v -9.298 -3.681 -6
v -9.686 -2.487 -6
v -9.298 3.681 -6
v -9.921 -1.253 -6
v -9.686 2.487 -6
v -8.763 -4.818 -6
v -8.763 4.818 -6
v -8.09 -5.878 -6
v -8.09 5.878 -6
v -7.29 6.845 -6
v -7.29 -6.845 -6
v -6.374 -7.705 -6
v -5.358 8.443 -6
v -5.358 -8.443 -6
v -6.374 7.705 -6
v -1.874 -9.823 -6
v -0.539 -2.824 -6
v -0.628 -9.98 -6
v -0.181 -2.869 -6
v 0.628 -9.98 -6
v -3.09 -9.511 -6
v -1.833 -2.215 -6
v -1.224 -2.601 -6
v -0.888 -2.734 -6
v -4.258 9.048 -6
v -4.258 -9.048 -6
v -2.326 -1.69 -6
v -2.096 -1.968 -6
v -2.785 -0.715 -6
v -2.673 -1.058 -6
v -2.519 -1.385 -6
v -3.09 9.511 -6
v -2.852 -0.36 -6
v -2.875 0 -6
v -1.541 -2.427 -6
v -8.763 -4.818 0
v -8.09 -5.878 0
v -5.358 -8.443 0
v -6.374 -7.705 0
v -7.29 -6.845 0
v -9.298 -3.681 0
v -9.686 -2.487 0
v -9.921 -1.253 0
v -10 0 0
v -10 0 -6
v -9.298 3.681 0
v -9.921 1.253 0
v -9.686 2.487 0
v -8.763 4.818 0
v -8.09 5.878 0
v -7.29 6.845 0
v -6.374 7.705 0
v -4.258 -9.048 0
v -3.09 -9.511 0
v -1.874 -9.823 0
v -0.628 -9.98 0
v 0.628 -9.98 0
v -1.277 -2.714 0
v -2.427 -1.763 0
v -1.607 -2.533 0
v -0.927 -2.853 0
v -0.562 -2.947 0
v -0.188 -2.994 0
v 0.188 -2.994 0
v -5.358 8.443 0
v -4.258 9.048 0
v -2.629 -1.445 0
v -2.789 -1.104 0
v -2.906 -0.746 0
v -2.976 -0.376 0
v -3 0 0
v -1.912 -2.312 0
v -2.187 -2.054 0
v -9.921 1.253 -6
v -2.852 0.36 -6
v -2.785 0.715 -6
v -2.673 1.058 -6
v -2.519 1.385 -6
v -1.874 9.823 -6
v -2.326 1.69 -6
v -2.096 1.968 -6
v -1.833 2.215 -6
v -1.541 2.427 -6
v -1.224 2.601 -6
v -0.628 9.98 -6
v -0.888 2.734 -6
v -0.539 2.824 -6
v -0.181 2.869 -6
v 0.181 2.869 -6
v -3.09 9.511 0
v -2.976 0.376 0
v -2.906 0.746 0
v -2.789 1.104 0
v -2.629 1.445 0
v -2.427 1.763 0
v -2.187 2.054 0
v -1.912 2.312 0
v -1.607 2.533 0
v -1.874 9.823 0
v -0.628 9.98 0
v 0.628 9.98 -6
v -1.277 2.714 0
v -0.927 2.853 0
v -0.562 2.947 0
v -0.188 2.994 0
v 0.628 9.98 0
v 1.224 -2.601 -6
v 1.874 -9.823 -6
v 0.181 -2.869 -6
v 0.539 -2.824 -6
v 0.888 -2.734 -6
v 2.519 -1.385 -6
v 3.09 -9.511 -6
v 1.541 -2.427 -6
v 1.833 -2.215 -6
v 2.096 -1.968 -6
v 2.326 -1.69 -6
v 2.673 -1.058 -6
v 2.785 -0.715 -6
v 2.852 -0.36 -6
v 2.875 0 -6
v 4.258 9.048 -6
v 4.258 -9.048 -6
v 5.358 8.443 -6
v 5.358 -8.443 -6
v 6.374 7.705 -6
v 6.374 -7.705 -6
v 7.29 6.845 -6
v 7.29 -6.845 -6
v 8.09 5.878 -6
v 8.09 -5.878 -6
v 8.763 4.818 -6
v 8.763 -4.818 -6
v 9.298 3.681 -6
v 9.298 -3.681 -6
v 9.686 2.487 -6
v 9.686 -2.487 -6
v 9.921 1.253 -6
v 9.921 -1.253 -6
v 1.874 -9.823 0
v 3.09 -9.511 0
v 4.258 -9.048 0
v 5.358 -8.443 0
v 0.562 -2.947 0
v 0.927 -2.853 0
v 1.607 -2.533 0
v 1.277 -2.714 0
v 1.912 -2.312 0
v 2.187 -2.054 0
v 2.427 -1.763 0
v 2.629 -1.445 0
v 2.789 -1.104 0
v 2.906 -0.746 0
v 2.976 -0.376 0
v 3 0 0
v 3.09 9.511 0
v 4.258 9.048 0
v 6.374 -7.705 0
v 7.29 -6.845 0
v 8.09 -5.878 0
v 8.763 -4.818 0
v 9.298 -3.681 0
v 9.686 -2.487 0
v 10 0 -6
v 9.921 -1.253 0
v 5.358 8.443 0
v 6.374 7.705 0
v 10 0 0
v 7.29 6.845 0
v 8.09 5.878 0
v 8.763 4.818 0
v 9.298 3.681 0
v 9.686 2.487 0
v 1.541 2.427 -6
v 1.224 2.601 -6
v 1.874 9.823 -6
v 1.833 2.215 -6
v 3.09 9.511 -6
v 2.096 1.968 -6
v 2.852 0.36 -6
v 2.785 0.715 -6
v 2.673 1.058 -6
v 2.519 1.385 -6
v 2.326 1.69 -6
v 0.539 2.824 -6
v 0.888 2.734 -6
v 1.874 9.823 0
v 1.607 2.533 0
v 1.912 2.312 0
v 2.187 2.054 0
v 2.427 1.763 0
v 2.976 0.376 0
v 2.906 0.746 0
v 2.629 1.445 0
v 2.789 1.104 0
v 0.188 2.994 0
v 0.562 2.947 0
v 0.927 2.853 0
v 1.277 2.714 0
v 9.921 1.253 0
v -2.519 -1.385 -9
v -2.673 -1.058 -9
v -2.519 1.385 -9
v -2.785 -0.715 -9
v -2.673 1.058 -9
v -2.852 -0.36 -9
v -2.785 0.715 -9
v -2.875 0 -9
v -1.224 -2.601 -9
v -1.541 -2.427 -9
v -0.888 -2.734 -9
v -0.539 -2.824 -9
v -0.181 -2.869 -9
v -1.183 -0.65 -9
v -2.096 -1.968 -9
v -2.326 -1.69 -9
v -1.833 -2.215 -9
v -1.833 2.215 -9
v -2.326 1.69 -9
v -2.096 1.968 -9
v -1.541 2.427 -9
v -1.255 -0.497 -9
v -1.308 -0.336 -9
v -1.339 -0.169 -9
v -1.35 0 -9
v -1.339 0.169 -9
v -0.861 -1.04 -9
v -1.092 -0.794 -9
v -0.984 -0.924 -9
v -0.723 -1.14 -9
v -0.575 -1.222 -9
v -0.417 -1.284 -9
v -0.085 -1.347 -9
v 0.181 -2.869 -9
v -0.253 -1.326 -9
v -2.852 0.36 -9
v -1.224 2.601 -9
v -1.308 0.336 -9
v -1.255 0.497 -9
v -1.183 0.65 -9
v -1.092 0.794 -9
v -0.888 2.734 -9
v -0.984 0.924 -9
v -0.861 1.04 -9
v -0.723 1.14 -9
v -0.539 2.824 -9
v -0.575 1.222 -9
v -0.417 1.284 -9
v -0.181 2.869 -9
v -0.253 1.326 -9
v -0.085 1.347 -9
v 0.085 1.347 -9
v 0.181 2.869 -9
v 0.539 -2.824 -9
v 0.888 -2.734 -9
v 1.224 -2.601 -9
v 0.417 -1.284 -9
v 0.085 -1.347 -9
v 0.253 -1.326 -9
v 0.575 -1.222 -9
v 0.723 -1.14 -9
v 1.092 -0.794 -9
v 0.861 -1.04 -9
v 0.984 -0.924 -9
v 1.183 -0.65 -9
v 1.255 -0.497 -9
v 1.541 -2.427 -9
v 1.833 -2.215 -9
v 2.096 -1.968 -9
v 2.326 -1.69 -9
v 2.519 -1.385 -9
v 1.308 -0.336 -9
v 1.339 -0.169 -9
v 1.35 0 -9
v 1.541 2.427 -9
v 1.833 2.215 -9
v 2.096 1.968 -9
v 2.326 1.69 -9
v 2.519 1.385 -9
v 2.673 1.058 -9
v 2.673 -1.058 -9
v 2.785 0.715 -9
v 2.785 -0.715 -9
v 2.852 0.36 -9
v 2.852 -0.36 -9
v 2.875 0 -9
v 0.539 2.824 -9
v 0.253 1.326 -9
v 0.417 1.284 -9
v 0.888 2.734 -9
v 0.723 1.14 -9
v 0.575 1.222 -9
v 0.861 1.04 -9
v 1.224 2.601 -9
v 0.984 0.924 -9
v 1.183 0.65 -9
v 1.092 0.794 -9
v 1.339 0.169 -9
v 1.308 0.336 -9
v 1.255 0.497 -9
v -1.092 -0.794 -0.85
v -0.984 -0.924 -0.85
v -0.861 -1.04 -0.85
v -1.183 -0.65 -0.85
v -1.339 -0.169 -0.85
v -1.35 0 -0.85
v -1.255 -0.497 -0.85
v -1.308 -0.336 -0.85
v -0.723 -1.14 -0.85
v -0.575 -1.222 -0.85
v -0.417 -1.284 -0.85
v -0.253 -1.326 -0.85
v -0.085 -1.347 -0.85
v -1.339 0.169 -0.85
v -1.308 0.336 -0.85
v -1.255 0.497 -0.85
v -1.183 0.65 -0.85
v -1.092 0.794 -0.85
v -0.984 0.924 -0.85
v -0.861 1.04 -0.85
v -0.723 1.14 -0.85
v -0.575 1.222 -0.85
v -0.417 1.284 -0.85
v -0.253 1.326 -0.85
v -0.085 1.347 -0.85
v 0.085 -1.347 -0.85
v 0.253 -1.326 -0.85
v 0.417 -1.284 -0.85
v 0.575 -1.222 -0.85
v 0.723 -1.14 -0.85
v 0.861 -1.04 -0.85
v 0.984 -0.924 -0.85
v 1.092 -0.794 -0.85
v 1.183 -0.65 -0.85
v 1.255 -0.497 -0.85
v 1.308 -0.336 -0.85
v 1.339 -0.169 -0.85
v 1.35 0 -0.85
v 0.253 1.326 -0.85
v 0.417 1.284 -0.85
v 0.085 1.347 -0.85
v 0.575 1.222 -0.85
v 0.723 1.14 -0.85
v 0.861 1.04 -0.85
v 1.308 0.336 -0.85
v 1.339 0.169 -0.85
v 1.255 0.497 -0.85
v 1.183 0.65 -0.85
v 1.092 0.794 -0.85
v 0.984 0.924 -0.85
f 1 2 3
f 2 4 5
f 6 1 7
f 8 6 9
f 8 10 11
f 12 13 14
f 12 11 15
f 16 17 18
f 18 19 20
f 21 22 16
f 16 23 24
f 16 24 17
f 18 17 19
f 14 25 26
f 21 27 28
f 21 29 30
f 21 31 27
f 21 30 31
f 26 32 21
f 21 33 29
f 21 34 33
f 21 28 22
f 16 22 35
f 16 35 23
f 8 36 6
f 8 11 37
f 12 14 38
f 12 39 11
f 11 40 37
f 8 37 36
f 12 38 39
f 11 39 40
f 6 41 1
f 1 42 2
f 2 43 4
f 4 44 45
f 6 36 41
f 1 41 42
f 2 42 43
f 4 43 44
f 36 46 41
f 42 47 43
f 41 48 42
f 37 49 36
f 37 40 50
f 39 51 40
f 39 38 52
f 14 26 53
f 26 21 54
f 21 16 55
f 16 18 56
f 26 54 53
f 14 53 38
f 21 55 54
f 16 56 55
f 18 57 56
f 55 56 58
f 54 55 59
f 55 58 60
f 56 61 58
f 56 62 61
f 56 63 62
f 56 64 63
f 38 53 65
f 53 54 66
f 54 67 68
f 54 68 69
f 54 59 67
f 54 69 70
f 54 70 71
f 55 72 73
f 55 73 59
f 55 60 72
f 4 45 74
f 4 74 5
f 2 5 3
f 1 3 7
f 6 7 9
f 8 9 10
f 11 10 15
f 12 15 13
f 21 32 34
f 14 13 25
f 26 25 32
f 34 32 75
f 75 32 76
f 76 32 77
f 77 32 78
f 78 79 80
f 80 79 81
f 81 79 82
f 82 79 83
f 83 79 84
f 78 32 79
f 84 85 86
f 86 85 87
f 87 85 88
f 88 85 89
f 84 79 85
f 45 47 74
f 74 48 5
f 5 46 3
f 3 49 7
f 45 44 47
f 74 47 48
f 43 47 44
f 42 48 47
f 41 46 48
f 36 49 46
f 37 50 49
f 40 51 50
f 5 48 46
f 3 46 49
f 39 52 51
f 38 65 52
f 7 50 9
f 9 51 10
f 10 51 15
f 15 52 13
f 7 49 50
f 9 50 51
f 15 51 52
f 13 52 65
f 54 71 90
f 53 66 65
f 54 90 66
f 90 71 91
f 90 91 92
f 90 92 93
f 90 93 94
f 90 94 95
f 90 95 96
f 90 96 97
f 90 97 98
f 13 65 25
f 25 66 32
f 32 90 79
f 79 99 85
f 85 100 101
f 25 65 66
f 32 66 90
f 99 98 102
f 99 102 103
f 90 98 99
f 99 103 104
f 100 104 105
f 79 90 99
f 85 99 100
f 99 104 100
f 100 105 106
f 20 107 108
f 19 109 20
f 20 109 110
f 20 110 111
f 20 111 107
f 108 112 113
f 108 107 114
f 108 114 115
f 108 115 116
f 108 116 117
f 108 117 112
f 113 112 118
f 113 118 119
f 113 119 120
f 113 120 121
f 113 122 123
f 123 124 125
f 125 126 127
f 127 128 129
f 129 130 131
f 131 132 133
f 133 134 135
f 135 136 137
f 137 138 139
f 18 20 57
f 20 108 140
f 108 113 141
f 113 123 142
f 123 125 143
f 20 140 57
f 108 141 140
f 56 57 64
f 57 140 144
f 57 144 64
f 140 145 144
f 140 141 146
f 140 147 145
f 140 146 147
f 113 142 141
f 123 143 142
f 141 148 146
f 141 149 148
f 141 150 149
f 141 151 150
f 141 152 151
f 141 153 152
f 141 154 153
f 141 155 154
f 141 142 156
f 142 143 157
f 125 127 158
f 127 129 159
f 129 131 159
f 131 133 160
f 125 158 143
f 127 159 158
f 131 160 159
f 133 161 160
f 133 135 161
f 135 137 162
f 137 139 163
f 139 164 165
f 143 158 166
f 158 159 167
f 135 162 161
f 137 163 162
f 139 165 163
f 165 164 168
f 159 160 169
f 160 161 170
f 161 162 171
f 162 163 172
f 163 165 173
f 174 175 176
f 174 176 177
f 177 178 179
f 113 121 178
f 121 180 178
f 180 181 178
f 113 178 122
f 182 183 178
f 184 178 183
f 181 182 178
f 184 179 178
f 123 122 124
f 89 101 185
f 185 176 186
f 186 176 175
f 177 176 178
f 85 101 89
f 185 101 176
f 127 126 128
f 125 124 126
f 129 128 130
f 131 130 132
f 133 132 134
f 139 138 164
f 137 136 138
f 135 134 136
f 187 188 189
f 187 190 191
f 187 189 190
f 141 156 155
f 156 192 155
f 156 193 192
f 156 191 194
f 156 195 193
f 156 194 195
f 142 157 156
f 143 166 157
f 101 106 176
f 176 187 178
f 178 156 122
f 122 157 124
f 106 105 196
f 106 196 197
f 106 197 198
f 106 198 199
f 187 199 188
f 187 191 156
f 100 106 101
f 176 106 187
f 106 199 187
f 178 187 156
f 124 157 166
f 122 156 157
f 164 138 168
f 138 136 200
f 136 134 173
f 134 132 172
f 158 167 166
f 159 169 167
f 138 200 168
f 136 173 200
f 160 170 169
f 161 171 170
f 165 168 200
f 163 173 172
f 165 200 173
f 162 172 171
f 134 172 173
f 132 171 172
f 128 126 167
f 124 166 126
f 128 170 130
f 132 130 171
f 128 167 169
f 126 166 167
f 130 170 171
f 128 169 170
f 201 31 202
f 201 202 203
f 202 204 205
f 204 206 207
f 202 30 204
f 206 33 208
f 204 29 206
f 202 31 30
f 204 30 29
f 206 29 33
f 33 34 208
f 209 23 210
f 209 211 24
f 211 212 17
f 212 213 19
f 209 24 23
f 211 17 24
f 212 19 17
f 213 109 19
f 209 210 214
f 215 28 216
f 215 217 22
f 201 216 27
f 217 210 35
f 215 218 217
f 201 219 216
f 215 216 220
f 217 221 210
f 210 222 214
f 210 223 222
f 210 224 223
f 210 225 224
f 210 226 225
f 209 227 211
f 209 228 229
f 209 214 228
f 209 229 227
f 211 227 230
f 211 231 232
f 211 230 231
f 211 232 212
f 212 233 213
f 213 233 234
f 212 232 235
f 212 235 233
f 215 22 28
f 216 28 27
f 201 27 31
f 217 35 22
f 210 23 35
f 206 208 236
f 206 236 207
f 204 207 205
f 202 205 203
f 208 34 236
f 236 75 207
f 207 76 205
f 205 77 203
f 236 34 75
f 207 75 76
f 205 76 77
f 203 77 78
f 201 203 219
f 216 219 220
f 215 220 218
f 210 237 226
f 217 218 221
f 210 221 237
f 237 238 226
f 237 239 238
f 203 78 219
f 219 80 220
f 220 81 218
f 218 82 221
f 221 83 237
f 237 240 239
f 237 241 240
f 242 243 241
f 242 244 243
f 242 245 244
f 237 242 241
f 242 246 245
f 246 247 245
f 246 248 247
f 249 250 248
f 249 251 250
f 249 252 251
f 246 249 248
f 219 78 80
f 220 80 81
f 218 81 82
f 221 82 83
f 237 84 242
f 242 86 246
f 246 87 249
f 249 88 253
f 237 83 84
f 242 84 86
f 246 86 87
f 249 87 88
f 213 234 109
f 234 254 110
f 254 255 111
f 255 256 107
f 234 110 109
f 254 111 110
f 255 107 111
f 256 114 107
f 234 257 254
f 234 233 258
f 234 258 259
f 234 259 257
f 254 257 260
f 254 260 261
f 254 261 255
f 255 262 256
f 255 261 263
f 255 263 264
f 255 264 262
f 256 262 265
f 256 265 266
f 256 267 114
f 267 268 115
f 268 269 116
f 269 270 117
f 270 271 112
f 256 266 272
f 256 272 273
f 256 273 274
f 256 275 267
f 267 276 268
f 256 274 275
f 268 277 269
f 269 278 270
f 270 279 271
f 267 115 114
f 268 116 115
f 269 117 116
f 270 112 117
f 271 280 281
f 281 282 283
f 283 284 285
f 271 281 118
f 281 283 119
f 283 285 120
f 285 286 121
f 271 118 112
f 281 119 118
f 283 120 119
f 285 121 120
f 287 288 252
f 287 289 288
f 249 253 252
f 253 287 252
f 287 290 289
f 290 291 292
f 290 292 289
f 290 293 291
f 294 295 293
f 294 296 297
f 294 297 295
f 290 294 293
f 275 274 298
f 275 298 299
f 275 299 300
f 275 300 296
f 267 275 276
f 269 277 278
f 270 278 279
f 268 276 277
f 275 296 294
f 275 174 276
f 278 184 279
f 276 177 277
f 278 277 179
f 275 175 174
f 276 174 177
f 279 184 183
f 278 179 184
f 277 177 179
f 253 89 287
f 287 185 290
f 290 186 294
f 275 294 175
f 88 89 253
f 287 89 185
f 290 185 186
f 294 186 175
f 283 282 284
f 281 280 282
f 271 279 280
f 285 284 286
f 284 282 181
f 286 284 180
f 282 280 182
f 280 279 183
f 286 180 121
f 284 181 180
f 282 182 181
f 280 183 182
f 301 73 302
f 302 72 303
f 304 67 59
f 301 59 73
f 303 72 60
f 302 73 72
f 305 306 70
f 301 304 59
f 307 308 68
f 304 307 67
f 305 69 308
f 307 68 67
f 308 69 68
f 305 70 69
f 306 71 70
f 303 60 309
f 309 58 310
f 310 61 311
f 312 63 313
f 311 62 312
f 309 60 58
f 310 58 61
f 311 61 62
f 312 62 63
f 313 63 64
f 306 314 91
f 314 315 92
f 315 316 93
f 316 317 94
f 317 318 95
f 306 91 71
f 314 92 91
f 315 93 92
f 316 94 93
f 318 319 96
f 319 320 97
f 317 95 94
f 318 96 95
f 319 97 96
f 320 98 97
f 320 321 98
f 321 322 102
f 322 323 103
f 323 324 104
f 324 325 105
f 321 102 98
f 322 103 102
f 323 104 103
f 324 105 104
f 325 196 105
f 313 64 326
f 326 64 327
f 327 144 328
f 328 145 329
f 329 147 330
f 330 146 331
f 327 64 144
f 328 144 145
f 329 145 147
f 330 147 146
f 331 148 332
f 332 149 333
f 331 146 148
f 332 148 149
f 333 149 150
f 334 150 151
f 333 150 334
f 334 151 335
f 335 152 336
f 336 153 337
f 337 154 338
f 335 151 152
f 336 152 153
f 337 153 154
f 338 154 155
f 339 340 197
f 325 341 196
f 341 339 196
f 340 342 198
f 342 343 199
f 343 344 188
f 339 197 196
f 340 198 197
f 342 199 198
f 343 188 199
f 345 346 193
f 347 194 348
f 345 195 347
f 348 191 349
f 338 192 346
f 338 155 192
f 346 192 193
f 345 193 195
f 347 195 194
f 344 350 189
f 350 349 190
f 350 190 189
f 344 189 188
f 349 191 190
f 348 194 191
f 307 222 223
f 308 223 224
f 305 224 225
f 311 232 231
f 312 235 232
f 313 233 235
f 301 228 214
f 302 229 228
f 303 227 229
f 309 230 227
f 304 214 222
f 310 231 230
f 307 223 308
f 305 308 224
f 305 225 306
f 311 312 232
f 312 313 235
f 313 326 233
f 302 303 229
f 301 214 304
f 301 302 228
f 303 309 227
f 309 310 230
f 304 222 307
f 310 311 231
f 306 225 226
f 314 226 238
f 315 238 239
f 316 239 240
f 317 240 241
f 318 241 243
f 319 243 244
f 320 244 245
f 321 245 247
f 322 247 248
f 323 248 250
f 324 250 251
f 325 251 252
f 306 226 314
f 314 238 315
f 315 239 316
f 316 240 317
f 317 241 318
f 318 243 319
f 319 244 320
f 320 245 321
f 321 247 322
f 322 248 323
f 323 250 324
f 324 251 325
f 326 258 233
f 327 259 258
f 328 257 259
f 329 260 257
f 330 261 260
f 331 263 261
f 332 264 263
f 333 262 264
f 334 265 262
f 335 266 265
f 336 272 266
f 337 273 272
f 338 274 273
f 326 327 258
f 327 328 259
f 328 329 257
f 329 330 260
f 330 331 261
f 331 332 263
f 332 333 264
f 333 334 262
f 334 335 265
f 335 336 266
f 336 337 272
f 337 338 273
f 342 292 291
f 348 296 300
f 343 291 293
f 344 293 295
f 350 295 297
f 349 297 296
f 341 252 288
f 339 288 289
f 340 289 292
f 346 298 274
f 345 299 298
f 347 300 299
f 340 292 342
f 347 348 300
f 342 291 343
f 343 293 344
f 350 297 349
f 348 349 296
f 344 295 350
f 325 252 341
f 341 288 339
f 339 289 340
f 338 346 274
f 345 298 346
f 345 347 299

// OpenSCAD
$fn = 50;

difference() {
	union() {
		translate(v = [0, 0, -6.0]) {
			cylinder(h = 6, r = 10.0);
		}
		#translate(v = [0, 0, -9.0]) {
			cylinder(h = 9, r = 2.875);
		}
	}
	union() {
		translate(v = [0, 0, 0]) {
			rotate(a = [0, 0, 0]) {
				difference() {
					union() {
						translate(v = [0, 0, -9.0]) {
							cylinder(h = 9, r = 1.0);
						}
						translate(v = [0, 0, -0.85]) {
							cylinder(h = 0.85, r1 = 1.35, r2 = 3.0);
						}
						translate(v = [0, 0, -9.0]) {
							cylinder(h = 9, r = 1.35);
						}
						translate(v = [0, 0, -9.0]) {
							cylinder(h = 9, r = 1.0);
						}
					}
					union();
				}
			}
		}
	}
}
